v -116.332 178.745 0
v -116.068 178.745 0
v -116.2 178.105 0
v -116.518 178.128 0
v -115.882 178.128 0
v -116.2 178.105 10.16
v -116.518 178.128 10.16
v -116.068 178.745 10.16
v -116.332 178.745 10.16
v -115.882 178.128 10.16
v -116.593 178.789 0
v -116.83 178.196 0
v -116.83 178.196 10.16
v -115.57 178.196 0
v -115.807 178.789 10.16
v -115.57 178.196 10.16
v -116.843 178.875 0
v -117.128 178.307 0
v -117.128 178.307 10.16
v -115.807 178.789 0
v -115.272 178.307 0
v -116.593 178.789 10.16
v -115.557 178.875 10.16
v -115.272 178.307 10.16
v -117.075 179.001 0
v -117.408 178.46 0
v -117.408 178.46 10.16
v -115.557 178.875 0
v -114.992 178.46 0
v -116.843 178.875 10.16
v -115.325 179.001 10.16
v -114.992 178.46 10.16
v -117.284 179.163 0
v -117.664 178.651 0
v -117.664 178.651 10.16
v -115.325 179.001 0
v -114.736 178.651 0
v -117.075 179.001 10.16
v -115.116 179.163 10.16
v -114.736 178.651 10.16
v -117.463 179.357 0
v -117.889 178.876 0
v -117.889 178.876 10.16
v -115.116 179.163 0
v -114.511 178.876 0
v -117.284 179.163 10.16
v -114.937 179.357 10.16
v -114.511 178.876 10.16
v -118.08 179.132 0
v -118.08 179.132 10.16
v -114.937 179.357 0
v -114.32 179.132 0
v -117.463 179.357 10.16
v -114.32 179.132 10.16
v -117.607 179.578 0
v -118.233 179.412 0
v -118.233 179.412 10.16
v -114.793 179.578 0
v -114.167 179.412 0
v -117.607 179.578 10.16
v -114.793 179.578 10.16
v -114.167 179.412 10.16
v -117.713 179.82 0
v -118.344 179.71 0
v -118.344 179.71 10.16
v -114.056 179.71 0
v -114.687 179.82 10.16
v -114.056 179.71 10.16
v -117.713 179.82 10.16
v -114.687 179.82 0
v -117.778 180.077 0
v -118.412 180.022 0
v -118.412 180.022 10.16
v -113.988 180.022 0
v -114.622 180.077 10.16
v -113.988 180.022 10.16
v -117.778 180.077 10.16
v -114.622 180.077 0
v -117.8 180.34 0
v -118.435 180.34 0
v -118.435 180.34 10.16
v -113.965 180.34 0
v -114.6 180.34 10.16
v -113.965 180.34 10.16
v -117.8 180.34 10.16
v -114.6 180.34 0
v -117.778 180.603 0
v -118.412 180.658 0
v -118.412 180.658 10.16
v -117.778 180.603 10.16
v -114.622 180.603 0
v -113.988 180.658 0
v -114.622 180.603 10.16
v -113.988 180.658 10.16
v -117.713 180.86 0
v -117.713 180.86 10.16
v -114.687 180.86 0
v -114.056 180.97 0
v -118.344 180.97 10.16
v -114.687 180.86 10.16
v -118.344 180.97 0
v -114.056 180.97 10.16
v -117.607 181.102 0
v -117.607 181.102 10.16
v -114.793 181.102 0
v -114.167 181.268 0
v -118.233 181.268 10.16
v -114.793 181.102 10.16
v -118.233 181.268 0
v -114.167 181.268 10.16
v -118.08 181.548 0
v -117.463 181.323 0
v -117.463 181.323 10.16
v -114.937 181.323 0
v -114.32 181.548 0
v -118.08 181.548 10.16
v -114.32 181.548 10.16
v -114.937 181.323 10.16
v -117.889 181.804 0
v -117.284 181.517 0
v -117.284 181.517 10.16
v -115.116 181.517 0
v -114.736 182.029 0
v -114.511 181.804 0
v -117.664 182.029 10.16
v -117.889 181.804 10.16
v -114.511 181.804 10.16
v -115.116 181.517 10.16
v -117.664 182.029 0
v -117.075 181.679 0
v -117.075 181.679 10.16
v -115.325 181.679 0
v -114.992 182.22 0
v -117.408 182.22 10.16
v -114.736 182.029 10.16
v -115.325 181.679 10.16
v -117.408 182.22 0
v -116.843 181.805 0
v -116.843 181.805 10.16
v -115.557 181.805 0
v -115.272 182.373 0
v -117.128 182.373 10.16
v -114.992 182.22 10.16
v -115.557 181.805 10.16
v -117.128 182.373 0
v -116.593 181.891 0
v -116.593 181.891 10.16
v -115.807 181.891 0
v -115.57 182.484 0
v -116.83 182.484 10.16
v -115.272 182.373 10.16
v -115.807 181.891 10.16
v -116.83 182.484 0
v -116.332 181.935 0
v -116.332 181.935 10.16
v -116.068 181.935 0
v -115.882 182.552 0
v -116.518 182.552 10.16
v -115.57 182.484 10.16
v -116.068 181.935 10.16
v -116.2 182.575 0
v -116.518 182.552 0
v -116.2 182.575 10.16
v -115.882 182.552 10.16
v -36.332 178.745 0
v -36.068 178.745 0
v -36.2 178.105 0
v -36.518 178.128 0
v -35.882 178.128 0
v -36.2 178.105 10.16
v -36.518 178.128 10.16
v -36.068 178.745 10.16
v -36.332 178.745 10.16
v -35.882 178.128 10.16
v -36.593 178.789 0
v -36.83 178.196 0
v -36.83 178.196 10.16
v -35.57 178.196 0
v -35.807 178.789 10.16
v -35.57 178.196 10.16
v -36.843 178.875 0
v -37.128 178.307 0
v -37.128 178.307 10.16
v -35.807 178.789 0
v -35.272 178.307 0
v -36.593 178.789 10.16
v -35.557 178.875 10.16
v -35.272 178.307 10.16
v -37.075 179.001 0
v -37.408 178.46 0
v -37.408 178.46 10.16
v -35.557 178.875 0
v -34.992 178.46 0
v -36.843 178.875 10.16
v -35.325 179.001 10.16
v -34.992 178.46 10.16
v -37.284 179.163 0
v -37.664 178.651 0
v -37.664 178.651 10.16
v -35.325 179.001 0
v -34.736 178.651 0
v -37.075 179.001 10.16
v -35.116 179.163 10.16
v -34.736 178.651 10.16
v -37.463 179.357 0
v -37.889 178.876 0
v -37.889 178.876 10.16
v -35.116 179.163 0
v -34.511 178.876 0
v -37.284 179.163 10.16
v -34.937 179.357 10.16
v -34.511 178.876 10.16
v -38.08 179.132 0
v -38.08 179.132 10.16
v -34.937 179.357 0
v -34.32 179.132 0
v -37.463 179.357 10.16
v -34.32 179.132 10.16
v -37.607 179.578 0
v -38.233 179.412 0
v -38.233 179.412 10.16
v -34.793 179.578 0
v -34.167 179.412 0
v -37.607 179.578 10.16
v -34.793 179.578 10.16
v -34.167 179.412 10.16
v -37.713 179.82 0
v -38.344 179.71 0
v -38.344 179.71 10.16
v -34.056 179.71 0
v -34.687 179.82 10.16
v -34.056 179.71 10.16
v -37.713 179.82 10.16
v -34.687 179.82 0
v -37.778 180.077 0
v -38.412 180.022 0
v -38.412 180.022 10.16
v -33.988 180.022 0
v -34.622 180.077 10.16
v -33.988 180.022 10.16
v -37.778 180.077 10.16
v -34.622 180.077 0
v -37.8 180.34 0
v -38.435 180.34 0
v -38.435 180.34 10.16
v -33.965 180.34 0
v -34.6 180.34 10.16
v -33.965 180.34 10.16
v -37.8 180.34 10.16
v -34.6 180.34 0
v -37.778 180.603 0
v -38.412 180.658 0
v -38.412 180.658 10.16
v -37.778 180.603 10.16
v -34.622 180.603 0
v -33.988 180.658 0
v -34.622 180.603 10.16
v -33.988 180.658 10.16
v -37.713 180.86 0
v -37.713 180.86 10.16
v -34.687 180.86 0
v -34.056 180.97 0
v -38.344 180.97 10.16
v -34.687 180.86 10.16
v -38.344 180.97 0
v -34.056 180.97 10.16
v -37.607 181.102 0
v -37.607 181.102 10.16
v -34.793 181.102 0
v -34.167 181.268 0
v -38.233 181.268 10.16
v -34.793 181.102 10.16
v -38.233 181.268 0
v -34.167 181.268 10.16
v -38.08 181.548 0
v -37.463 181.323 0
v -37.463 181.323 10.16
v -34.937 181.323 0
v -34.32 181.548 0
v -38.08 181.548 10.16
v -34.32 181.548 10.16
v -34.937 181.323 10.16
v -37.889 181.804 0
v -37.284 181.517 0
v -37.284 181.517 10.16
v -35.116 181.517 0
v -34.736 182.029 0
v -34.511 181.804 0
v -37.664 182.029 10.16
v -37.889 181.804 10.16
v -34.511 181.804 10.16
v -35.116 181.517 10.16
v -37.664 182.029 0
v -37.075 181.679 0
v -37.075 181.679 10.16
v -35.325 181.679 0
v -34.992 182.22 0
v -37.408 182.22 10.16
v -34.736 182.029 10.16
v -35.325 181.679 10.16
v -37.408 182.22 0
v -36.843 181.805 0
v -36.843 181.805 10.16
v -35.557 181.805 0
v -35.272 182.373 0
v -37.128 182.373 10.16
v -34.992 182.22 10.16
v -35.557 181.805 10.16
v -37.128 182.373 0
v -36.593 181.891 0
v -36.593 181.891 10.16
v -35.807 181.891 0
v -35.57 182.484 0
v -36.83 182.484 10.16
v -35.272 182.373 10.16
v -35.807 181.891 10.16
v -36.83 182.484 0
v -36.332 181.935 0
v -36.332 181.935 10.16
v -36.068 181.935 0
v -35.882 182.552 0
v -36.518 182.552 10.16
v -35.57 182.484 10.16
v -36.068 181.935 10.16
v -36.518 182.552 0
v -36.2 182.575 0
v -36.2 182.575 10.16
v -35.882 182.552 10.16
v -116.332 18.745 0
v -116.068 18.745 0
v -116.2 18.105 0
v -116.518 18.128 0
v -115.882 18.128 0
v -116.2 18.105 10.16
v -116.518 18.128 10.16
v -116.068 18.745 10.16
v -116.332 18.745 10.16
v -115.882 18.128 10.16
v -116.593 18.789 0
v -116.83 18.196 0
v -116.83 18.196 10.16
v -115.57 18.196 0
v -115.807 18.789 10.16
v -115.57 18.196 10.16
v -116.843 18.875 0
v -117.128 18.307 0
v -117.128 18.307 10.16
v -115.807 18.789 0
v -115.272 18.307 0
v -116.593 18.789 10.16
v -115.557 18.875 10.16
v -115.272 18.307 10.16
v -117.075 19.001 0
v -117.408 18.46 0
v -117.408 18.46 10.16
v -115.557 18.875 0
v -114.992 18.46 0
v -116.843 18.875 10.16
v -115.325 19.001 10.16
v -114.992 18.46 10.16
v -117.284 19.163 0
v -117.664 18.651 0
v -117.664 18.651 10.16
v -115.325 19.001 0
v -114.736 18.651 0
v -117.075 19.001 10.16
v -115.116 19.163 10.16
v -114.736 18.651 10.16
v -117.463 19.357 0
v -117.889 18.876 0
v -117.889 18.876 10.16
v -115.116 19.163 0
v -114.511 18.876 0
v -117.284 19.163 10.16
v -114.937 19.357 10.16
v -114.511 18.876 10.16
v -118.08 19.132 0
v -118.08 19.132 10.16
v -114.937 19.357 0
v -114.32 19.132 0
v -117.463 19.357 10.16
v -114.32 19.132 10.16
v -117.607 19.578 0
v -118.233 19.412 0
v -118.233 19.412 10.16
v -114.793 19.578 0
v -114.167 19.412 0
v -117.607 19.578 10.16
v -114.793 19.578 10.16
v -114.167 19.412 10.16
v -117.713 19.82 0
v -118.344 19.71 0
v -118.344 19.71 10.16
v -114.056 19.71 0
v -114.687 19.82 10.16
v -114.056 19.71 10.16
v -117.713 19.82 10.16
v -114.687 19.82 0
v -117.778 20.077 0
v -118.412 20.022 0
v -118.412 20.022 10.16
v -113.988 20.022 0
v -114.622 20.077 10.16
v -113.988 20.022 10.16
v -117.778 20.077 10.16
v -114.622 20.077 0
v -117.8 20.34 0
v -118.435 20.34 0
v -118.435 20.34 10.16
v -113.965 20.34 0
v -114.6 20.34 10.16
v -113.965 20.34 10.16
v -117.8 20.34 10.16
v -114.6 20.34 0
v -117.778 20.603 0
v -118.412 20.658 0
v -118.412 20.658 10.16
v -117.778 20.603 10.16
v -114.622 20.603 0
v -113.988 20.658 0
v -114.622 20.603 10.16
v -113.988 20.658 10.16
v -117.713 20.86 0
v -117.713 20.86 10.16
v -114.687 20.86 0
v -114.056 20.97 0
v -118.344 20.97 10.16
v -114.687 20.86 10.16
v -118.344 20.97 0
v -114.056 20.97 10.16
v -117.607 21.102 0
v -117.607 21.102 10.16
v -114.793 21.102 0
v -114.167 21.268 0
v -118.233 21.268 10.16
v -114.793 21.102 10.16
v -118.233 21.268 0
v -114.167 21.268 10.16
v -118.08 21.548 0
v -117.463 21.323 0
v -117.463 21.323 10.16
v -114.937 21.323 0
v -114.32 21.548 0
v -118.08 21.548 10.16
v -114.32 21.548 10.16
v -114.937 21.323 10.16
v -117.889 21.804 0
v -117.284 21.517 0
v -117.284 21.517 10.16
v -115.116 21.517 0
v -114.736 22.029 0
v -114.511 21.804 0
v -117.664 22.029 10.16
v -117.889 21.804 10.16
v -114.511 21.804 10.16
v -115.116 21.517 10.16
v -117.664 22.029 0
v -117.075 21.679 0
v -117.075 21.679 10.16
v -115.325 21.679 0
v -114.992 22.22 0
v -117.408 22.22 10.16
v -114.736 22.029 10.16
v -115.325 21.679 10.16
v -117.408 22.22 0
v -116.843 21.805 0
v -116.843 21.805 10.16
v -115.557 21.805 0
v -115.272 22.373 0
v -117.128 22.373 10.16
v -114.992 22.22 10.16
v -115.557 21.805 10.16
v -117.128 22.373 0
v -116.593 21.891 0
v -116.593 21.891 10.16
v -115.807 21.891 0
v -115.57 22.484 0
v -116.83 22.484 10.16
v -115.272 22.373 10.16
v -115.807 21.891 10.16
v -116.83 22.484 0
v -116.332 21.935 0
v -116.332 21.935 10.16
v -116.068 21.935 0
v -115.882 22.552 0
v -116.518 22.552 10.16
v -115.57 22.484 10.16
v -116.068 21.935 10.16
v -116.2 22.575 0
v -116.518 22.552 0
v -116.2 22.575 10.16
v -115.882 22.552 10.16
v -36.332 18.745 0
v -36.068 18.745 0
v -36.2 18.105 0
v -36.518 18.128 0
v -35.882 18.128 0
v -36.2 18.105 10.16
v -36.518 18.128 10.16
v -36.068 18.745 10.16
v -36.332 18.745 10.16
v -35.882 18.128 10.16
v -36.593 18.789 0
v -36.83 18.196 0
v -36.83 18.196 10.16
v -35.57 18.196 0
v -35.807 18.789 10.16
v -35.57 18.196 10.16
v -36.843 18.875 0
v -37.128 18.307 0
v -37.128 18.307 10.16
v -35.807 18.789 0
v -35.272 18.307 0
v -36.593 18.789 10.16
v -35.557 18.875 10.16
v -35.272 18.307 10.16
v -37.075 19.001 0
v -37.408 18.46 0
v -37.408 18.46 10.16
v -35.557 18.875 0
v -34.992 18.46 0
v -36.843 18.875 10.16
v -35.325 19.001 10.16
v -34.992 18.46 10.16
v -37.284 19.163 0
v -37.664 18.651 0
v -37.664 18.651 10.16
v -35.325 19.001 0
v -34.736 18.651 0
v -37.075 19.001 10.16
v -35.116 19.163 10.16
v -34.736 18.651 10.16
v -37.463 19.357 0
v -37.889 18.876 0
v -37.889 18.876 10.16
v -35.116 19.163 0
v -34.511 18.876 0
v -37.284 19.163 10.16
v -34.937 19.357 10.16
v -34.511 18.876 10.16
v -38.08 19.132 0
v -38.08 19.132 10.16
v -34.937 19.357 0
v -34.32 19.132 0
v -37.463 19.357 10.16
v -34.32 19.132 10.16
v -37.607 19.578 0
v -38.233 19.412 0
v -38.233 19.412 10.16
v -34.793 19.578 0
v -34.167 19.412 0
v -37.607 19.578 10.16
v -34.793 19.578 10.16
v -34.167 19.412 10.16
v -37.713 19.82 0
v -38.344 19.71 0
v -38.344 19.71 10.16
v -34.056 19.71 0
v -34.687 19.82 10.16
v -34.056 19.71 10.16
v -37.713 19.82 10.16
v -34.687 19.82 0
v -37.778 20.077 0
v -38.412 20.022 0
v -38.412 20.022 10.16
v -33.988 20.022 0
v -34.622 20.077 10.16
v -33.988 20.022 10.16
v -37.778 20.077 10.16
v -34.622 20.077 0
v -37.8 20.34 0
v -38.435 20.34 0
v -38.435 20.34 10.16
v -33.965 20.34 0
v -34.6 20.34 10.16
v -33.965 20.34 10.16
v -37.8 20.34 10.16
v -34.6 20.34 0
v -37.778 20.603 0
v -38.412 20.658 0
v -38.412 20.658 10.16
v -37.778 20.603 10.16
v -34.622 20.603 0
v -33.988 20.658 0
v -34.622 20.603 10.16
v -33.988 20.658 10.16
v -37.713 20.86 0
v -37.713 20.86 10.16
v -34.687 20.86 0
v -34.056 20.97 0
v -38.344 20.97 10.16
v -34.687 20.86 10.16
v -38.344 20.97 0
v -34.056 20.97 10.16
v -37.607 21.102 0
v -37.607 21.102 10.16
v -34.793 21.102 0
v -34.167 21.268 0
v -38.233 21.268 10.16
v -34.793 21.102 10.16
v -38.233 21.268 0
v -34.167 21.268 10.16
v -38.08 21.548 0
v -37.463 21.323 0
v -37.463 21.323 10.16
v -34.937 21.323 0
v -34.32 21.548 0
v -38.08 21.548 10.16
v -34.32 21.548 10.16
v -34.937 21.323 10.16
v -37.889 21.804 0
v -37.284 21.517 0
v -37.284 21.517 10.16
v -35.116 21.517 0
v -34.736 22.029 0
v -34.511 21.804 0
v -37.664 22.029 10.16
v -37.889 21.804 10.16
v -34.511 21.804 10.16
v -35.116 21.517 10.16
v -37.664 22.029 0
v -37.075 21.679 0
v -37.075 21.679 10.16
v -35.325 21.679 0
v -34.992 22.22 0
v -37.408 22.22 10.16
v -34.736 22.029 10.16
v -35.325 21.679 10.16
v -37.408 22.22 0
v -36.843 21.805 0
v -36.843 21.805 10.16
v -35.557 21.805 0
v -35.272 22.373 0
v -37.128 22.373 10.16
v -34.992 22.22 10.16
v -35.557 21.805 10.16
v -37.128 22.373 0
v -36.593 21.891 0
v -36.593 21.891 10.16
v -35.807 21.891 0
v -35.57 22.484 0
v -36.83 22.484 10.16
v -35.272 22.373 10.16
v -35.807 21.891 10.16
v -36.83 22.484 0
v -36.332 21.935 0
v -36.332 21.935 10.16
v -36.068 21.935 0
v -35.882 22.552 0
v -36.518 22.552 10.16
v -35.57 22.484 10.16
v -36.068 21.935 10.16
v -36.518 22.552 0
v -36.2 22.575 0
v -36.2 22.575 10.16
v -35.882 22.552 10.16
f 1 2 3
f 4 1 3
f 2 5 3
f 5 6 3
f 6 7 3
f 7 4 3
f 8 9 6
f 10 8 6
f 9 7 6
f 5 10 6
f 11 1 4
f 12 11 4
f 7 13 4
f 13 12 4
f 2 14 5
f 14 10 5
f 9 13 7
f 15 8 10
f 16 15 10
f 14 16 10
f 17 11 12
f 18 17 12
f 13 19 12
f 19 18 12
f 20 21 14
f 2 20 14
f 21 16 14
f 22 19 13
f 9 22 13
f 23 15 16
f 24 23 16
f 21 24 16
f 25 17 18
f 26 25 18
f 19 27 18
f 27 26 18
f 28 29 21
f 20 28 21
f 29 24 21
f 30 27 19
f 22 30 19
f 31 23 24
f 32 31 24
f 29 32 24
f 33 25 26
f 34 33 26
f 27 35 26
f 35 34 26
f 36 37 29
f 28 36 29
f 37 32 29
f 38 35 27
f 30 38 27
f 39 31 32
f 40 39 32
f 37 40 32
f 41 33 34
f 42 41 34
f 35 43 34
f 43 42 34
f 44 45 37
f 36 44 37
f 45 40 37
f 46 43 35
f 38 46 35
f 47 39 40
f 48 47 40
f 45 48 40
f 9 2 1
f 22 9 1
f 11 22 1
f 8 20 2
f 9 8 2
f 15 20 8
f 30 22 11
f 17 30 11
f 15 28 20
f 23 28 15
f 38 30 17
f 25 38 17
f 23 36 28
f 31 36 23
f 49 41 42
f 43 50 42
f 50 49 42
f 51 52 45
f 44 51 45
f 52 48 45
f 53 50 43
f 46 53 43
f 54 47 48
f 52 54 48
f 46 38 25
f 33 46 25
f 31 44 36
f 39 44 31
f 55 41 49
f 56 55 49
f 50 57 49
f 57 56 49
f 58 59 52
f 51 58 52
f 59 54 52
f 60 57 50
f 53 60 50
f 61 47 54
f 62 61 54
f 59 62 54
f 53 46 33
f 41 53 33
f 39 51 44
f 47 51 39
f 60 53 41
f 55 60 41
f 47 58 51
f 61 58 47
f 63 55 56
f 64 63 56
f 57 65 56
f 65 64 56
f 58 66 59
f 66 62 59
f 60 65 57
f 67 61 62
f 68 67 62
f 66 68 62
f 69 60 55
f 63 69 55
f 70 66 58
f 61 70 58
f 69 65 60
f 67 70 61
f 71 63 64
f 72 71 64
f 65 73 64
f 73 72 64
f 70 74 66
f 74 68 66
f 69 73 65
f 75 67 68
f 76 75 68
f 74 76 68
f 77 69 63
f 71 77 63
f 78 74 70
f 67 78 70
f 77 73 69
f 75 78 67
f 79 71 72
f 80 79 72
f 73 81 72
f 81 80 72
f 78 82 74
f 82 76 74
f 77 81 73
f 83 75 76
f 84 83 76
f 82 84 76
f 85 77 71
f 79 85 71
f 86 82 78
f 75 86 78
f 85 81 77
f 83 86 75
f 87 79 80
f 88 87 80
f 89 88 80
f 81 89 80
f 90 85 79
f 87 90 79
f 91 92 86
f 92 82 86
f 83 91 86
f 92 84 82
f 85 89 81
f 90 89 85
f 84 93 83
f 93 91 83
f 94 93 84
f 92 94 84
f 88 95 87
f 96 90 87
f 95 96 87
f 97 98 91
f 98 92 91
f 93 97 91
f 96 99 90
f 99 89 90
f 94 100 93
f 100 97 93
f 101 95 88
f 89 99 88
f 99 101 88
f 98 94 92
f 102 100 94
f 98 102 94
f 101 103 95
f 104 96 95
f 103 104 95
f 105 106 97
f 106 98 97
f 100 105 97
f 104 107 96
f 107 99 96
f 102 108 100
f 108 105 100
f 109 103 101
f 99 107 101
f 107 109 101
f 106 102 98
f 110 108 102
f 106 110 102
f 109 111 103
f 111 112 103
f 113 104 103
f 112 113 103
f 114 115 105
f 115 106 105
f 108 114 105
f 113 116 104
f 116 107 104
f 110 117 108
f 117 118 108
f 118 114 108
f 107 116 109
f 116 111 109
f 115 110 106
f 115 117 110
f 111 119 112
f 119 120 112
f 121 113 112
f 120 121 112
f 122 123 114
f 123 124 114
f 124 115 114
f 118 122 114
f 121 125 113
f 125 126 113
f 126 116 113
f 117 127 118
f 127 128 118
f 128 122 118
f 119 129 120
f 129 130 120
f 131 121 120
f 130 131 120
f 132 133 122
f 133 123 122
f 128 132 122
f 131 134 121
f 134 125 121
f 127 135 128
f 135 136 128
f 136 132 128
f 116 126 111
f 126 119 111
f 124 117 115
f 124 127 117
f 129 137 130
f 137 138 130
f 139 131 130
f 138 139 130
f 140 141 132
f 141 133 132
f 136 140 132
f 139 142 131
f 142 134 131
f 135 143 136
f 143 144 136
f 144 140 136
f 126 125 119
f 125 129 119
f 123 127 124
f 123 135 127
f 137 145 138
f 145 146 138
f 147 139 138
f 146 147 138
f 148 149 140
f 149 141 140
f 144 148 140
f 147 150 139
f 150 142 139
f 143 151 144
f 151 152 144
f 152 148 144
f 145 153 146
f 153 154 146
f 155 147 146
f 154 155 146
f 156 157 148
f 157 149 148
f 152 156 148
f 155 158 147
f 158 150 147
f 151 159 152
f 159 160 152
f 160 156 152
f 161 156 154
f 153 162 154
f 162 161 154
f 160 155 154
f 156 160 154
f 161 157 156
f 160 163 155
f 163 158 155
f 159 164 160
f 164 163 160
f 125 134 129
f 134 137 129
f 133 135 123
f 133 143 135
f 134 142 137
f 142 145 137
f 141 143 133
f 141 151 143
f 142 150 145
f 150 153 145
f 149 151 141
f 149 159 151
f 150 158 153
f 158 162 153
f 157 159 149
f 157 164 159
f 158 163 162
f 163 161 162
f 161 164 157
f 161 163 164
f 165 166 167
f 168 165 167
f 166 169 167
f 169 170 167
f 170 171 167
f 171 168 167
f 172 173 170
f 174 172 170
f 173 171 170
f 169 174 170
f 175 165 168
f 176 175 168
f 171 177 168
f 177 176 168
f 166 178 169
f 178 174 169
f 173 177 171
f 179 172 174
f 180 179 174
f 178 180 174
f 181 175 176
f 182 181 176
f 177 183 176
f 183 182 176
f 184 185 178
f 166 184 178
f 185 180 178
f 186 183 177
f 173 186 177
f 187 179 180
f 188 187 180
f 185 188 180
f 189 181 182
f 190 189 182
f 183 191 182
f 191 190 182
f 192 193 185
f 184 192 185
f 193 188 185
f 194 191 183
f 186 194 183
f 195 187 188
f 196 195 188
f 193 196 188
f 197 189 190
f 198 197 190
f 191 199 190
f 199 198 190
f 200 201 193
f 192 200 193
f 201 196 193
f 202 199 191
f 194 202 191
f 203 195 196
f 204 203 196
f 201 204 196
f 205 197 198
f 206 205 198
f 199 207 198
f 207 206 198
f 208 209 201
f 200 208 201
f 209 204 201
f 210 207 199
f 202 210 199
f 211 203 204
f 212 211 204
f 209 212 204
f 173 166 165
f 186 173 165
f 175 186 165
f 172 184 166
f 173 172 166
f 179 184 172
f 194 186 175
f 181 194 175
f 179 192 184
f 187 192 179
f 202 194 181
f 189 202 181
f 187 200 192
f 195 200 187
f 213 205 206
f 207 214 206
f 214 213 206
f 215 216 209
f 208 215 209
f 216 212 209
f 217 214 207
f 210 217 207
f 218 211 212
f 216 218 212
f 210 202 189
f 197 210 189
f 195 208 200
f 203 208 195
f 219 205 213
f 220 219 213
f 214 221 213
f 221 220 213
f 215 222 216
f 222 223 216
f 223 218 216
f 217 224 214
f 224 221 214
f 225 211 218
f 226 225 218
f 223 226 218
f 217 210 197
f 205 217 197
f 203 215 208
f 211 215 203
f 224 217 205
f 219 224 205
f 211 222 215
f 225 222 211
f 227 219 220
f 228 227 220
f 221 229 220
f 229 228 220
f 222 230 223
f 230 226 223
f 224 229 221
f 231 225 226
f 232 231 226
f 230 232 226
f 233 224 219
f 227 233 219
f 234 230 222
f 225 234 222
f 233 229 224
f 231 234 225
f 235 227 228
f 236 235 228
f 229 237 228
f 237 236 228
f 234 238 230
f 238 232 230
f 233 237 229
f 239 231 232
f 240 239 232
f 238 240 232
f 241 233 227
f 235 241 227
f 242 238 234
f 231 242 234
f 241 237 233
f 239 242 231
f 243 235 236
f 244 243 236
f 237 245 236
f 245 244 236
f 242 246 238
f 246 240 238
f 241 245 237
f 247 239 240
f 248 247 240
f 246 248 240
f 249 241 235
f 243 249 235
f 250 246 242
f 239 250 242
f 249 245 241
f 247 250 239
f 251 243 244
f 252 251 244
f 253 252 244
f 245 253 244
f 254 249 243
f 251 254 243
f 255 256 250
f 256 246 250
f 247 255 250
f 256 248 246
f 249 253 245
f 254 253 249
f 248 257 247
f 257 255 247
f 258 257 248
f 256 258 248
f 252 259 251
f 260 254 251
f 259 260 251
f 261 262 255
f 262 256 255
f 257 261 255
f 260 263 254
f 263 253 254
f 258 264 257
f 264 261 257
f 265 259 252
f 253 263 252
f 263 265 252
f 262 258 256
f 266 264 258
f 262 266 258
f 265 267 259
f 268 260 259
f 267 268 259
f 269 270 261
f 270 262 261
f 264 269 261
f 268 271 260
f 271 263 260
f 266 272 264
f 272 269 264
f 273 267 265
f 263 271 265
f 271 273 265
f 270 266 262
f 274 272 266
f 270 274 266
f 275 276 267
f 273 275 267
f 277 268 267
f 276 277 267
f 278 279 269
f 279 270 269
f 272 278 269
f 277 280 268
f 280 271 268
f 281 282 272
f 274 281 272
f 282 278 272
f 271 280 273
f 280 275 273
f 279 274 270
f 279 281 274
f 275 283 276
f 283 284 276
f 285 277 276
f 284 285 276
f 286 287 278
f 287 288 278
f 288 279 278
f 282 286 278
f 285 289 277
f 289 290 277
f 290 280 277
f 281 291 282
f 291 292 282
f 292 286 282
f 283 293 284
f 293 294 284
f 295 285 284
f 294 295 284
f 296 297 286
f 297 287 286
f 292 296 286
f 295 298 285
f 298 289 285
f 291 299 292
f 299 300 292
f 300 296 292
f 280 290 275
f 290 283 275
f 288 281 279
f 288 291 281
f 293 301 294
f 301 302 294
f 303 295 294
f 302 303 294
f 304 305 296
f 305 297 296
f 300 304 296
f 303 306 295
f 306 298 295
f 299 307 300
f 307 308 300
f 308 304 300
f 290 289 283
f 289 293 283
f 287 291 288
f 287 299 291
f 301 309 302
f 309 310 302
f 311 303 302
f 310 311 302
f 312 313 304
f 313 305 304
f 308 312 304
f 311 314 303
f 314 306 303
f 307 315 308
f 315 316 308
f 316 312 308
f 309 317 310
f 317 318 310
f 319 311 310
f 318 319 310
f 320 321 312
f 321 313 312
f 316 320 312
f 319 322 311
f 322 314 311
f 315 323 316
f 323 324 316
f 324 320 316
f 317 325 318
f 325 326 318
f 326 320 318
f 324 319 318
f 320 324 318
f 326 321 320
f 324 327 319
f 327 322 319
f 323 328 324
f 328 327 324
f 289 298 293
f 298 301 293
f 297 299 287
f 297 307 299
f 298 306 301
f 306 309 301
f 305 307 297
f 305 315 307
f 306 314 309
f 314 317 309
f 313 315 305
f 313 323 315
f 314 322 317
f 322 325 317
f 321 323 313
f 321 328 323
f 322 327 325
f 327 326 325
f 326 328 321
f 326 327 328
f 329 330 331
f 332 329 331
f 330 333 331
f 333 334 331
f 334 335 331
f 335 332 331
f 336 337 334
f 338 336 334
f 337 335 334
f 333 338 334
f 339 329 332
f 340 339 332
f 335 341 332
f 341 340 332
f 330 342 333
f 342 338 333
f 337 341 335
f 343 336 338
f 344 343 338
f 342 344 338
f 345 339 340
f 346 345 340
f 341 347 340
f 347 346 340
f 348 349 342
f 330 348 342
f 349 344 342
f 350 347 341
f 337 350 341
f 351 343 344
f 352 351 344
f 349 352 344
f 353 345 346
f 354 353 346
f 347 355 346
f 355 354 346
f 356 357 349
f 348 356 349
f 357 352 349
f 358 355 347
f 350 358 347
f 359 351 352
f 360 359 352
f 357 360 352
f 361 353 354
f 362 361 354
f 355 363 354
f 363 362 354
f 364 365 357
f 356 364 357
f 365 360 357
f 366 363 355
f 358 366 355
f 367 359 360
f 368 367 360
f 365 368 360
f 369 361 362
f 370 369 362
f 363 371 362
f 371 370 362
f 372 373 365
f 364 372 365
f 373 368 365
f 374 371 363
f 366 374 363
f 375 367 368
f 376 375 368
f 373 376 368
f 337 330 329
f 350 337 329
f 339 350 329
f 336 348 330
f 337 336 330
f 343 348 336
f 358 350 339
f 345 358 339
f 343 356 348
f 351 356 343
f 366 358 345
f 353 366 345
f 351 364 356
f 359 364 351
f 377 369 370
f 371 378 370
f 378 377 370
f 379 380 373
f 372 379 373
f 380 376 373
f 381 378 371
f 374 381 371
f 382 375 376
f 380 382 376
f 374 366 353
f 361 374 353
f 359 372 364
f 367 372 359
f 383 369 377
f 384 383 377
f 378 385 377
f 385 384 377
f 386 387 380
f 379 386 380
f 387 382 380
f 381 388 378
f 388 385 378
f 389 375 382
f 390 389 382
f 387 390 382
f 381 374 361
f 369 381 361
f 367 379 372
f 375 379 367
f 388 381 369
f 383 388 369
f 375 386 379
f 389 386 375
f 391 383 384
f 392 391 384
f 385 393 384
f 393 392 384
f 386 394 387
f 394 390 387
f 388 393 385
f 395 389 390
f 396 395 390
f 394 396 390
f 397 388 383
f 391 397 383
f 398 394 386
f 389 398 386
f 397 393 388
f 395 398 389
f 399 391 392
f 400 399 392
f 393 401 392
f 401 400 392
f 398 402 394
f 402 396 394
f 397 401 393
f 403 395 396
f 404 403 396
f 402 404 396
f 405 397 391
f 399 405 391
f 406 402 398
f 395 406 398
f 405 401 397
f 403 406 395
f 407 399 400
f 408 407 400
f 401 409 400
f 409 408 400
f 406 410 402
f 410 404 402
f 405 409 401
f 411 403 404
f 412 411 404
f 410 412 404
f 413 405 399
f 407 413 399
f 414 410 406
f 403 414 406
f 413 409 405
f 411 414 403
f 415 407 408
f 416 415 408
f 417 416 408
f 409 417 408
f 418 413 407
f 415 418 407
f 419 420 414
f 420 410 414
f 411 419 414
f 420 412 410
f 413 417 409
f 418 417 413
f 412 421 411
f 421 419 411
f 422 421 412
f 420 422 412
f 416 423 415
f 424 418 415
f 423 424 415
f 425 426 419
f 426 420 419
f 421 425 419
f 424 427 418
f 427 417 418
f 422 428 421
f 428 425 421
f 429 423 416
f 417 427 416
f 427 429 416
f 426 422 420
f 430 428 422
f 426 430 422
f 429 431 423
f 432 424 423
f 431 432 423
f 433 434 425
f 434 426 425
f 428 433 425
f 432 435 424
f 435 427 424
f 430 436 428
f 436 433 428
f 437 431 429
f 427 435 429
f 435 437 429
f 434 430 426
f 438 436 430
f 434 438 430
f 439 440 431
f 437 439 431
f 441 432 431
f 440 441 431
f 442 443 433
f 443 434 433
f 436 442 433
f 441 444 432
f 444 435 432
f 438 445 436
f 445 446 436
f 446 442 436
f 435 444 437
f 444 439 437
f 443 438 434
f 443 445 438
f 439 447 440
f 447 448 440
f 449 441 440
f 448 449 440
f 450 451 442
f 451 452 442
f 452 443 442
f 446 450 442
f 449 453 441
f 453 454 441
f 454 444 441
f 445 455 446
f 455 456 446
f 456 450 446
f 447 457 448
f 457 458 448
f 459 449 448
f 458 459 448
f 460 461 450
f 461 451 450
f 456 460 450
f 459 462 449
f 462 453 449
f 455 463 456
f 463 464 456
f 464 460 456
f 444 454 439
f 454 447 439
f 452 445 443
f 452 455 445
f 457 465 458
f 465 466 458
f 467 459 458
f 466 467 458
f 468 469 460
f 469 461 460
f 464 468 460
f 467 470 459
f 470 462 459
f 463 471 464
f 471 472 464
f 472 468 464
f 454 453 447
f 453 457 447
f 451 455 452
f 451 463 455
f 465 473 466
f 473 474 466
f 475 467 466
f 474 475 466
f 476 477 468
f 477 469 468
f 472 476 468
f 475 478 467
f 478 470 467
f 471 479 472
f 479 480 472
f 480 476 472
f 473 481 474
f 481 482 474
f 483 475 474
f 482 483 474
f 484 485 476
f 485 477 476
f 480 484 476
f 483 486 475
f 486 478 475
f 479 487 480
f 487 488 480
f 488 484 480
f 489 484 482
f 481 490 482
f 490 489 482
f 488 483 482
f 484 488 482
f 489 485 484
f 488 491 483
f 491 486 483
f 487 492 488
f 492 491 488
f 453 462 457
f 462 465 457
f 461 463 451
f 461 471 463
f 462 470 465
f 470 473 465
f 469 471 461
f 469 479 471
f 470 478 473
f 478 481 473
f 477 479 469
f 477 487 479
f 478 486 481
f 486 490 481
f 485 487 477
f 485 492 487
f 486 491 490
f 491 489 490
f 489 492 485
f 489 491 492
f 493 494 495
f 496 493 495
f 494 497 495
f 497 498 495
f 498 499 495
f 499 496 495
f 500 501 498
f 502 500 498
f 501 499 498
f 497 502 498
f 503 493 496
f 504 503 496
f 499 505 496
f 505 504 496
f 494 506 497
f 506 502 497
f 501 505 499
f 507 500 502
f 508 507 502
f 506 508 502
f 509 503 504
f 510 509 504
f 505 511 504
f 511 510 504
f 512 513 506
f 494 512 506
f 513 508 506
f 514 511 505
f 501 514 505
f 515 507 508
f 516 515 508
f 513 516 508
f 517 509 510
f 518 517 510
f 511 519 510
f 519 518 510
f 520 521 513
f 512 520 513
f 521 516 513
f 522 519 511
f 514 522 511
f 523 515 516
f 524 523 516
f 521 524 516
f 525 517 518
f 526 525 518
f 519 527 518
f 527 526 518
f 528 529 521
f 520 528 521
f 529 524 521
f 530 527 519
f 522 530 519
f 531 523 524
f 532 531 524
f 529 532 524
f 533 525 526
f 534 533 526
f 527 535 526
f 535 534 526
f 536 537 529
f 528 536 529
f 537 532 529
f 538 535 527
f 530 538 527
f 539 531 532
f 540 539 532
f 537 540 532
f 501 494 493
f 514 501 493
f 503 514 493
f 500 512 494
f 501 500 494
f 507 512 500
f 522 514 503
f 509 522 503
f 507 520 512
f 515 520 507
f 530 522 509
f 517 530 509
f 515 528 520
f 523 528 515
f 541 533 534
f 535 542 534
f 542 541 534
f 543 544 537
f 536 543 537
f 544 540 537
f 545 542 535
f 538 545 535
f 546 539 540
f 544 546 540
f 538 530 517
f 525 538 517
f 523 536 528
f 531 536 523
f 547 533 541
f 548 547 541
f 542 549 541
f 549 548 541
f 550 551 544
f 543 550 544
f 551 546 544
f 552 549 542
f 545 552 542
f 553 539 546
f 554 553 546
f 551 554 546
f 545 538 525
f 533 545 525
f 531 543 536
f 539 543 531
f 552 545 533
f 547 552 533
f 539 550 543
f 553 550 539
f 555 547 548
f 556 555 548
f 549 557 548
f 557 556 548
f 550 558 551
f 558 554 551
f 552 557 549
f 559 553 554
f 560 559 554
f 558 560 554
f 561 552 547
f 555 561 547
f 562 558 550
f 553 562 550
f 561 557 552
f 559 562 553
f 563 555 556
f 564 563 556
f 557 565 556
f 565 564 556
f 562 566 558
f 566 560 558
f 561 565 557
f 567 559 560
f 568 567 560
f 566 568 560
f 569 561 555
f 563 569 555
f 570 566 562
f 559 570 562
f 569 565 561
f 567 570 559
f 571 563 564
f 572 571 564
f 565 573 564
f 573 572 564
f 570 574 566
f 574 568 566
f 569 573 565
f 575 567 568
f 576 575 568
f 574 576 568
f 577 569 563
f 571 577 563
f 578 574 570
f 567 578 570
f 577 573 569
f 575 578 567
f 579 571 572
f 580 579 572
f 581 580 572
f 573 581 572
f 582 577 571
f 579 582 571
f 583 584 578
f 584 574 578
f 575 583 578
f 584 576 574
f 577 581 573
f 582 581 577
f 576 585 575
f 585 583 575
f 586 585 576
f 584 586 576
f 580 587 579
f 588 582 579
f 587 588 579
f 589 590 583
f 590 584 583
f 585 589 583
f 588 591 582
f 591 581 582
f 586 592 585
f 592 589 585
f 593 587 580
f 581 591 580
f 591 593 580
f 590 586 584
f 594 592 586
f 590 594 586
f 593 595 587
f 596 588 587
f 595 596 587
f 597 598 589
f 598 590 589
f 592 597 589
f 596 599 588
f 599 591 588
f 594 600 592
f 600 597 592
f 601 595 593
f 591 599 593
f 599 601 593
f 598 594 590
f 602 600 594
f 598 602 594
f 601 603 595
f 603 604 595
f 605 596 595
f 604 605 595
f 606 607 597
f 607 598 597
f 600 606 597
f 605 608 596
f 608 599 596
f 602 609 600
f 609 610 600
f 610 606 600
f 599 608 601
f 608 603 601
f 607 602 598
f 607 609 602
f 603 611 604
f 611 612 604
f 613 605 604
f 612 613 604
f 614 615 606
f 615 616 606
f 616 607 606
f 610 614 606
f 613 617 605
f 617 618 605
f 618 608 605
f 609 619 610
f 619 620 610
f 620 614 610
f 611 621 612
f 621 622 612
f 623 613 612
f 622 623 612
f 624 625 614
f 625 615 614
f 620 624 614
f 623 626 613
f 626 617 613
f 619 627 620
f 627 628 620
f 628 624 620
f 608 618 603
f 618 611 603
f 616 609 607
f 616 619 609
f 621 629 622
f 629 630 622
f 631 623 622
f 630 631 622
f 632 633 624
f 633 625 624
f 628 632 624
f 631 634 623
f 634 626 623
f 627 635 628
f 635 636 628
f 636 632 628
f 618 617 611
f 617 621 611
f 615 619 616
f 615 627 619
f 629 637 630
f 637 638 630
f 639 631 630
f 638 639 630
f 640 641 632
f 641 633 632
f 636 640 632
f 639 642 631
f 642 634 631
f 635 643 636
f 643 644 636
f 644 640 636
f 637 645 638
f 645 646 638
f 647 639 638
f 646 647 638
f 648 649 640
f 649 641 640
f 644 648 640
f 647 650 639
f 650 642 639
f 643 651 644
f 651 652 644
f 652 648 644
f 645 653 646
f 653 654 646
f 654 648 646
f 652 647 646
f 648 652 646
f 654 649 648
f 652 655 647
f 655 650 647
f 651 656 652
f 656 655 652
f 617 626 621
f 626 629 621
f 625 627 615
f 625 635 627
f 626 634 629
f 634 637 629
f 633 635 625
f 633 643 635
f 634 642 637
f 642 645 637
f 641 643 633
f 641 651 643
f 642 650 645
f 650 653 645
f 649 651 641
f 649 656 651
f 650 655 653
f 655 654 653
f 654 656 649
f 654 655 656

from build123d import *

# Parameters (mm, degrees)
SKETCH1_R             = 2.234999975
SKETCH1_R_2           = 1.599999975
BOSS_EXTRUDE1_DEPTH   = 10.16
BOSS_EXTRUDE1_2_DEPTH = 10.16
BOSS_EXTRUDE1_3_DEPTH = 10.16
BOSS_EXTRUDE1_4_DEPTH = 10.16


with BuildPart() as part:
    # Sketch1 → Boss-Extrude1 (new body)
    with BuildSketch(Plane.XY):
        with Locations((-116.2, 180.34)):
            Circle(SKETCH1_R)
        with Locations((-116.2, 180.34)):
            Circle(SKETCH1_R_2, mode=Mode.SUBTRACT)
    extrude(amount=BOSS_EXTRUDE1_DEPTH)


with BuildPart() as body_2:
    # Sketch1 → Boss-Extrude1 2 (new body)
    with BuildSketch(Plane.XY):
        with Locations((-36.2, 180.34)):
            Circle(SKETCH1_R)
        with Locations((-36.2, 180.34)):
            Circle(SKETCH1_R_2, mode=Mode.SUBTRACT)
    extrude(amount=BOSS_EXTRUDE1_2_DEPTH)


with BuildPart() as body_3:
    # Sketch1 → Boss-Extrude1 3 (new body)
    with BuildSketch(Plane.XY):
        with Locations((-116.2, 20.34)):
            Circle(SKETCH1_R)
        with Locations((-116.2, 20.34)):
            Circle(SKETCH1_R_2, mode=Mode.SUBTRACT)
    extrude(amount=BOSS_EXTRUDE1_3_DEPTH)


with BuildPart() as body_4:
    # Sketch1 → Boss-Extrude1 4 (new body)
    with BuildSketch(Plane.XY):
        with Locations((-36.2, 20.34)):
            Circle(SKETCH1_R)
        with Locations((-36.2, 20.34)):
            Circle(SKETCH1_R_2, mode=Mode.SUBTRACT)
    extrude(amount=BOSS_EXTRUDE1_4_DEPTH)


solid = Compound([part.part, body_2.part, body_3.part, body_4.part])
